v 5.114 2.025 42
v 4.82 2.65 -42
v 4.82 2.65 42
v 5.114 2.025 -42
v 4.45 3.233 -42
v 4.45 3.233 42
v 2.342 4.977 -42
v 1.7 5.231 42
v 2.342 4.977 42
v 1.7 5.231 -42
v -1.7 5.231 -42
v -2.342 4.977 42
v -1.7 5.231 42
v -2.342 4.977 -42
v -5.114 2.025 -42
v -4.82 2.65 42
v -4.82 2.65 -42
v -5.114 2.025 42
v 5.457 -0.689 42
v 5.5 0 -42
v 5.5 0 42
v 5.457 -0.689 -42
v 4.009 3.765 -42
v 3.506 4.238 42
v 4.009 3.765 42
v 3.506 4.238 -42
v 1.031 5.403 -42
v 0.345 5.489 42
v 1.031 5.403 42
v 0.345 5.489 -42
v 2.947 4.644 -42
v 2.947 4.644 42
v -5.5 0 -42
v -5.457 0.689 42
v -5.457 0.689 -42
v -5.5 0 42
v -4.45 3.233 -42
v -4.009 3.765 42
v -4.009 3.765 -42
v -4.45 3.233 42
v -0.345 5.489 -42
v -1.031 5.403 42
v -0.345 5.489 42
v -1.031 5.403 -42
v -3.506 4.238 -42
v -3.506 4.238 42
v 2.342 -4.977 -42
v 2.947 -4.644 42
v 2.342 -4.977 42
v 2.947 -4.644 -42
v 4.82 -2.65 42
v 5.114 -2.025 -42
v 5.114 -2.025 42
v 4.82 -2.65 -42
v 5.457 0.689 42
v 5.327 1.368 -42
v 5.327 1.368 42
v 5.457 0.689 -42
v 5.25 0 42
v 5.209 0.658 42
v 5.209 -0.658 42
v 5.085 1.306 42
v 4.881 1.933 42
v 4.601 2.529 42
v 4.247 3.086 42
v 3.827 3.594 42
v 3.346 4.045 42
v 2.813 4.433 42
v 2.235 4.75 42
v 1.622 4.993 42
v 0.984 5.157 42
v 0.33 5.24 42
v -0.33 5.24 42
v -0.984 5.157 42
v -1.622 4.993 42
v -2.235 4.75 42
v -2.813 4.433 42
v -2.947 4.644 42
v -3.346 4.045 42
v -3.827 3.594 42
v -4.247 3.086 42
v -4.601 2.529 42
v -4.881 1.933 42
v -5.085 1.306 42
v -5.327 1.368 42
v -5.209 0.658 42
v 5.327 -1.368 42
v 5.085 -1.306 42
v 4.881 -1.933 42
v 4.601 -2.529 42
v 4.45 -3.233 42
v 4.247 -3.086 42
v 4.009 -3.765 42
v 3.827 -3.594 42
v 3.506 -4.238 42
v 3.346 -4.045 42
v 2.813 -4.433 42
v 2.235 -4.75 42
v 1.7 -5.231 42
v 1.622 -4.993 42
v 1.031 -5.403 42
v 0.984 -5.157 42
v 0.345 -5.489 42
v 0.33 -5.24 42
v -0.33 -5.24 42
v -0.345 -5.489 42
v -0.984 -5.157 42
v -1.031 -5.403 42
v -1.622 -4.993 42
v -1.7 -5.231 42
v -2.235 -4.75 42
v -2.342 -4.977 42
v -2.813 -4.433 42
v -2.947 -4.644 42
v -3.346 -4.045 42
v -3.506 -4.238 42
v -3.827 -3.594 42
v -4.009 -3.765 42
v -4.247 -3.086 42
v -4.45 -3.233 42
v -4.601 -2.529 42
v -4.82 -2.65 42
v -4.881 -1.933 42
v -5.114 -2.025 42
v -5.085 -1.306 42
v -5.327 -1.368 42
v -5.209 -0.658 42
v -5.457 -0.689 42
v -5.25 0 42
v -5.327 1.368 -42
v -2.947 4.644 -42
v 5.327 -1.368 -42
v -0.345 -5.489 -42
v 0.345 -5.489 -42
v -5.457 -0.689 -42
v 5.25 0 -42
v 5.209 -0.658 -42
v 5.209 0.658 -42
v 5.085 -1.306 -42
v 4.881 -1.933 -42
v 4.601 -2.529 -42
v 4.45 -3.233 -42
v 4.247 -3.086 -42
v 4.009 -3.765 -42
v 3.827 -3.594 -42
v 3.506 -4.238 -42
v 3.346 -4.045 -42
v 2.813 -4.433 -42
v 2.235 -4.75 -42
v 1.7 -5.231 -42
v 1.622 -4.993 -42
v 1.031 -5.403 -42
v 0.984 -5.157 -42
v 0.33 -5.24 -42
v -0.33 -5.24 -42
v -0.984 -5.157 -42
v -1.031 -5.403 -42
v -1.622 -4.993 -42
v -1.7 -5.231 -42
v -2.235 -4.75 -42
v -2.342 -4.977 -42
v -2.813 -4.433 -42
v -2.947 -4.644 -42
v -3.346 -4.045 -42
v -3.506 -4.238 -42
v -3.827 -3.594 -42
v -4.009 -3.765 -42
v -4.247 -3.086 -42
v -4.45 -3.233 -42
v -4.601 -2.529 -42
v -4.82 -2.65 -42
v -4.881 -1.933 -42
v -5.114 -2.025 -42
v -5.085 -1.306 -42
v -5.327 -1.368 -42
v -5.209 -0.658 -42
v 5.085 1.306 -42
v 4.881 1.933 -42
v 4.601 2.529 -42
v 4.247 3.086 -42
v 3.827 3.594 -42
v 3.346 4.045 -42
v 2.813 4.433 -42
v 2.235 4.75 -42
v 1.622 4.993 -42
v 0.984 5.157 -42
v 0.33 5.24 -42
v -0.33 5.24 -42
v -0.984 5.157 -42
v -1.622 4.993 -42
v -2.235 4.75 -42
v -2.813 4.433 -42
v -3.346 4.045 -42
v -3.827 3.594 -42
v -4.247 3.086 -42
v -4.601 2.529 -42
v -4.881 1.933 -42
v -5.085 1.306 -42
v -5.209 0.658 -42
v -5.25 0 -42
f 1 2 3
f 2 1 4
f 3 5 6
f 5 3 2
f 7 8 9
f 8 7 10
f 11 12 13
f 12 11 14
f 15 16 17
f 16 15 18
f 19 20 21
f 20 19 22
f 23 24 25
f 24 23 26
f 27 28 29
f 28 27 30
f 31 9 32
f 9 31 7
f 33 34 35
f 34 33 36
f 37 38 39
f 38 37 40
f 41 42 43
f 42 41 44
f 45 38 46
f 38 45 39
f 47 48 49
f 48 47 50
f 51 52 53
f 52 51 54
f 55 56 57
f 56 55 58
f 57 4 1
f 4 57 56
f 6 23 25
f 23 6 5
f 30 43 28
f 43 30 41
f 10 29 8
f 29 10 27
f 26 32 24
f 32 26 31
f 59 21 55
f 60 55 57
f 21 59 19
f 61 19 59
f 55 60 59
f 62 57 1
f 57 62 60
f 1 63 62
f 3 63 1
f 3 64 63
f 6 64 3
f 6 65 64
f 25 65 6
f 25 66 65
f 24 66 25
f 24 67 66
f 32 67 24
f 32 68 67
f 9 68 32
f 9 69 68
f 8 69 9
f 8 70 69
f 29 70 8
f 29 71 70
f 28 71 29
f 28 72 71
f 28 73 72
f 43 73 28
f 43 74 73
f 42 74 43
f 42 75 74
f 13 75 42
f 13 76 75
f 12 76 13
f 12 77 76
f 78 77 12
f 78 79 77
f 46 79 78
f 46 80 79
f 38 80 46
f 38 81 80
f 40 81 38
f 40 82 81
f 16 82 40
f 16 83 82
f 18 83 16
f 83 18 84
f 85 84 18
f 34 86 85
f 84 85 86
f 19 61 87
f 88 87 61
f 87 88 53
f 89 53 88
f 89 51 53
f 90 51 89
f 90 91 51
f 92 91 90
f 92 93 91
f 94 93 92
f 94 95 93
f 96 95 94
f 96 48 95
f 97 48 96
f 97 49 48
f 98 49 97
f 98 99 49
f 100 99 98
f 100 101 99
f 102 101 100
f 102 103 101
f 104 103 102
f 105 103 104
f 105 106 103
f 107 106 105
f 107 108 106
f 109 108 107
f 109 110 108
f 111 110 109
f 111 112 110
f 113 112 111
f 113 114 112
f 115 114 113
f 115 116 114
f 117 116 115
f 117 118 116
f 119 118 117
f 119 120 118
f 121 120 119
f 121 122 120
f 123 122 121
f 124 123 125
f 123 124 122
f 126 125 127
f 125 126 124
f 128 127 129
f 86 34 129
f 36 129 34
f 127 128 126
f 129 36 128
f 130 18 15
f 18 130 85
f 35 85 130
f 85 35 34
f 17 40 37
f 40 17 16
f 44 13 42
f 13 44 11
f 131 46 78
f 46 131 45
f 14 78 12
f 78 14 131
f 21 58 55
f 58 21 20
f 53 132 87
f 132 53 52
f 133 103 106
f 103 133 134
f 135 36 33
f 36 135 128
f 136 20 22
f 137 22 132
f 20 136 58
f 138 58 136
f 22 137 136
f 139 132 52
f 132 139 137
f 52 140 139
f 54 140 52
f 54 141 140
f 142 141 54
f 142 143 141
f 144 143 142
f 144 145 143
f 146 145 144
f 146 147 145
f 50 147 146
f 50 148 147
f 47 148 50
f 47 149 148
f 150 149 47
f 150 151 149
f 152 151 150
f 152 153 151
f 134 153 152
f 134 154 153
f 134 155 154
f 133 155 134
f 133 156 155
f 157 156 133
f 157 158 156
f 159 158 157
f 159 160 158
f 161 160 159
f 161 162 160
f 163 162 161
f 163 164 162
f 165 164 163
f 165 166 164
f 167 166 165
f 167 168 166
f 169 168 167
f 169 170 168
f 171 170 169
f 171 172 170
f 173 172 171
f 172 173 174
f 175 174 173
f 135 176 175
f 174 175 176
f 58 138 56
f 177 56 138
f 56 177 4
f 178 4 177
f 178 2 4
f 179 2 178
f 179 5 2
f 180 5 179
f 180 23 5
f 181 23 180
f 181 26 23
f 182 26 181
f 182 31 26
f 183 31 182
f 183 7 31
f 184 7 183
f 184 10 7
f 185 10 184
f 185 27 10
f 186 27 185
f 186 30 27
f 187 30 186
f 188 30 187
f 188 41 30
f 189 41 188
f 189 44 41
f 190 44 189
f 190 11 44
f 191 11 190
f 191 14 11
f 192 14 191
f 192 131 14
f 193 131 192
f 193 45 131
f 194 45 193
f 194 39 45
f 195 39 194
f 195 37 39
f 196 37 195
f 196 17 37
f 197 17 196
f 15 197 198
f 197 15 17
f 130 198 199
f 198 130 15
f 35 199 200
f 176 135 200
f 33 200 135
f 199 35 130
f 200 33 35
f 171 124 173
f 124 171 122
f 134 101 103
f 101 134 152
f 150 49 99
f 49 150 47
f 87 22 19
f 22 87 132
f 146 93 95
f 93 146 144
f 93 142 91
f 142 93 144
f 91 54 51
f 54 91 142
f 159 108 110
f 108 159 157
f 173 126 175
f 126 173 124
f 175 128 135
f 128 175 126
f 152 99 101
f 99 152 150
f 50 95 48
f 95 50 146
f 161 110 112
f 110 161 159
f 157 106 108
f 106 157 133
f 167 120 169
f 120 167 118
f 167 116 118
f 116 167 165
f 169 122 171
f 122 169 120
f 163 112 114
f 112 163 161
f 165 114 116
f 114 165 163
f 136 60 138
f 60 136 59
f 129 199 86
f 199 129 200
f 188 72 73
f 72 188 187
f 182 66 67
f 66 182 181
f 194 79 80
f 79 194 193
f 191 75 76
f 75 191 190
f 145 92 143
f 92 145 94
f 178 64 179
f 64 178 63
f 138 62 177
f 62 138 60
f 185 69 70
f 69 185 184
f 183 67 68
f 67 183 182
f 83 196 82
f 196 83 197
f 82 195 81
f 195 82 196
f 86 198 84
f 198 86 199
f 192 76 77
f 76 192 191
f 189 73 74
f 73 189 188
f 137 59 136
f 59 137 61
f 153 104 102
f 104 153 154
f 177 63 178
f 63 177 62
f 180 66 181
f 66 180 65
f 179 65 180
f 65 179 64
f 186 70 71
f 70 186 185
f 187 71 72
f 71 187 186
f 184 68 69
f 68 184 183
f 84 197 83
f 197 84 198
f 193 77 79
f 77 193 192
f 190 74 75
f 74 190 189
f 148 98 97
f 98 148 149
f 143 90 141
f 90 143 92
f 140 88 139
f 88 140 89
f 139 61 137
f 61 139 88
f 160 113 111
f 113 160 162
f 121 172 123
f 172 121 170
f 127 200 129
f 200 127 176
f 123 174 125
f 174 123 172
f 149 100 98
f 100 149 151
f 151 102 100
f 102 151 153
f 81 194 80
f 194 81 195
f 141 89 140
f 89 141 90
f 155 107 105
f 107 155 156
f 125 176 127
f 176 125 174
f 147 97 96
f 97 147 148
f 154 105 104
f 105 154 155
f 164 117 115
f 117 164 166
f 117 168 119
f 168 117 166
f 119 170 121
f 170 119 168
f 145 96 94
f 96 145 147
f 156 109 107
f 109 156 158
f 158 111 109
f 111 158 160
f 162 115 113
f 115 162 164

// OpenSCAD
$fn = 50;


difference() {
	union() {
		translate(v = [0, 0, -42.0000000000]) {
			cylinder(h = 84, r = 5.5000000000);
		}
	}
	union() {
		translate(v = [0, 0, -100.0000000000]) {
			cylinder(h = 200, r = 5.2500000000);
		}
	}
}
